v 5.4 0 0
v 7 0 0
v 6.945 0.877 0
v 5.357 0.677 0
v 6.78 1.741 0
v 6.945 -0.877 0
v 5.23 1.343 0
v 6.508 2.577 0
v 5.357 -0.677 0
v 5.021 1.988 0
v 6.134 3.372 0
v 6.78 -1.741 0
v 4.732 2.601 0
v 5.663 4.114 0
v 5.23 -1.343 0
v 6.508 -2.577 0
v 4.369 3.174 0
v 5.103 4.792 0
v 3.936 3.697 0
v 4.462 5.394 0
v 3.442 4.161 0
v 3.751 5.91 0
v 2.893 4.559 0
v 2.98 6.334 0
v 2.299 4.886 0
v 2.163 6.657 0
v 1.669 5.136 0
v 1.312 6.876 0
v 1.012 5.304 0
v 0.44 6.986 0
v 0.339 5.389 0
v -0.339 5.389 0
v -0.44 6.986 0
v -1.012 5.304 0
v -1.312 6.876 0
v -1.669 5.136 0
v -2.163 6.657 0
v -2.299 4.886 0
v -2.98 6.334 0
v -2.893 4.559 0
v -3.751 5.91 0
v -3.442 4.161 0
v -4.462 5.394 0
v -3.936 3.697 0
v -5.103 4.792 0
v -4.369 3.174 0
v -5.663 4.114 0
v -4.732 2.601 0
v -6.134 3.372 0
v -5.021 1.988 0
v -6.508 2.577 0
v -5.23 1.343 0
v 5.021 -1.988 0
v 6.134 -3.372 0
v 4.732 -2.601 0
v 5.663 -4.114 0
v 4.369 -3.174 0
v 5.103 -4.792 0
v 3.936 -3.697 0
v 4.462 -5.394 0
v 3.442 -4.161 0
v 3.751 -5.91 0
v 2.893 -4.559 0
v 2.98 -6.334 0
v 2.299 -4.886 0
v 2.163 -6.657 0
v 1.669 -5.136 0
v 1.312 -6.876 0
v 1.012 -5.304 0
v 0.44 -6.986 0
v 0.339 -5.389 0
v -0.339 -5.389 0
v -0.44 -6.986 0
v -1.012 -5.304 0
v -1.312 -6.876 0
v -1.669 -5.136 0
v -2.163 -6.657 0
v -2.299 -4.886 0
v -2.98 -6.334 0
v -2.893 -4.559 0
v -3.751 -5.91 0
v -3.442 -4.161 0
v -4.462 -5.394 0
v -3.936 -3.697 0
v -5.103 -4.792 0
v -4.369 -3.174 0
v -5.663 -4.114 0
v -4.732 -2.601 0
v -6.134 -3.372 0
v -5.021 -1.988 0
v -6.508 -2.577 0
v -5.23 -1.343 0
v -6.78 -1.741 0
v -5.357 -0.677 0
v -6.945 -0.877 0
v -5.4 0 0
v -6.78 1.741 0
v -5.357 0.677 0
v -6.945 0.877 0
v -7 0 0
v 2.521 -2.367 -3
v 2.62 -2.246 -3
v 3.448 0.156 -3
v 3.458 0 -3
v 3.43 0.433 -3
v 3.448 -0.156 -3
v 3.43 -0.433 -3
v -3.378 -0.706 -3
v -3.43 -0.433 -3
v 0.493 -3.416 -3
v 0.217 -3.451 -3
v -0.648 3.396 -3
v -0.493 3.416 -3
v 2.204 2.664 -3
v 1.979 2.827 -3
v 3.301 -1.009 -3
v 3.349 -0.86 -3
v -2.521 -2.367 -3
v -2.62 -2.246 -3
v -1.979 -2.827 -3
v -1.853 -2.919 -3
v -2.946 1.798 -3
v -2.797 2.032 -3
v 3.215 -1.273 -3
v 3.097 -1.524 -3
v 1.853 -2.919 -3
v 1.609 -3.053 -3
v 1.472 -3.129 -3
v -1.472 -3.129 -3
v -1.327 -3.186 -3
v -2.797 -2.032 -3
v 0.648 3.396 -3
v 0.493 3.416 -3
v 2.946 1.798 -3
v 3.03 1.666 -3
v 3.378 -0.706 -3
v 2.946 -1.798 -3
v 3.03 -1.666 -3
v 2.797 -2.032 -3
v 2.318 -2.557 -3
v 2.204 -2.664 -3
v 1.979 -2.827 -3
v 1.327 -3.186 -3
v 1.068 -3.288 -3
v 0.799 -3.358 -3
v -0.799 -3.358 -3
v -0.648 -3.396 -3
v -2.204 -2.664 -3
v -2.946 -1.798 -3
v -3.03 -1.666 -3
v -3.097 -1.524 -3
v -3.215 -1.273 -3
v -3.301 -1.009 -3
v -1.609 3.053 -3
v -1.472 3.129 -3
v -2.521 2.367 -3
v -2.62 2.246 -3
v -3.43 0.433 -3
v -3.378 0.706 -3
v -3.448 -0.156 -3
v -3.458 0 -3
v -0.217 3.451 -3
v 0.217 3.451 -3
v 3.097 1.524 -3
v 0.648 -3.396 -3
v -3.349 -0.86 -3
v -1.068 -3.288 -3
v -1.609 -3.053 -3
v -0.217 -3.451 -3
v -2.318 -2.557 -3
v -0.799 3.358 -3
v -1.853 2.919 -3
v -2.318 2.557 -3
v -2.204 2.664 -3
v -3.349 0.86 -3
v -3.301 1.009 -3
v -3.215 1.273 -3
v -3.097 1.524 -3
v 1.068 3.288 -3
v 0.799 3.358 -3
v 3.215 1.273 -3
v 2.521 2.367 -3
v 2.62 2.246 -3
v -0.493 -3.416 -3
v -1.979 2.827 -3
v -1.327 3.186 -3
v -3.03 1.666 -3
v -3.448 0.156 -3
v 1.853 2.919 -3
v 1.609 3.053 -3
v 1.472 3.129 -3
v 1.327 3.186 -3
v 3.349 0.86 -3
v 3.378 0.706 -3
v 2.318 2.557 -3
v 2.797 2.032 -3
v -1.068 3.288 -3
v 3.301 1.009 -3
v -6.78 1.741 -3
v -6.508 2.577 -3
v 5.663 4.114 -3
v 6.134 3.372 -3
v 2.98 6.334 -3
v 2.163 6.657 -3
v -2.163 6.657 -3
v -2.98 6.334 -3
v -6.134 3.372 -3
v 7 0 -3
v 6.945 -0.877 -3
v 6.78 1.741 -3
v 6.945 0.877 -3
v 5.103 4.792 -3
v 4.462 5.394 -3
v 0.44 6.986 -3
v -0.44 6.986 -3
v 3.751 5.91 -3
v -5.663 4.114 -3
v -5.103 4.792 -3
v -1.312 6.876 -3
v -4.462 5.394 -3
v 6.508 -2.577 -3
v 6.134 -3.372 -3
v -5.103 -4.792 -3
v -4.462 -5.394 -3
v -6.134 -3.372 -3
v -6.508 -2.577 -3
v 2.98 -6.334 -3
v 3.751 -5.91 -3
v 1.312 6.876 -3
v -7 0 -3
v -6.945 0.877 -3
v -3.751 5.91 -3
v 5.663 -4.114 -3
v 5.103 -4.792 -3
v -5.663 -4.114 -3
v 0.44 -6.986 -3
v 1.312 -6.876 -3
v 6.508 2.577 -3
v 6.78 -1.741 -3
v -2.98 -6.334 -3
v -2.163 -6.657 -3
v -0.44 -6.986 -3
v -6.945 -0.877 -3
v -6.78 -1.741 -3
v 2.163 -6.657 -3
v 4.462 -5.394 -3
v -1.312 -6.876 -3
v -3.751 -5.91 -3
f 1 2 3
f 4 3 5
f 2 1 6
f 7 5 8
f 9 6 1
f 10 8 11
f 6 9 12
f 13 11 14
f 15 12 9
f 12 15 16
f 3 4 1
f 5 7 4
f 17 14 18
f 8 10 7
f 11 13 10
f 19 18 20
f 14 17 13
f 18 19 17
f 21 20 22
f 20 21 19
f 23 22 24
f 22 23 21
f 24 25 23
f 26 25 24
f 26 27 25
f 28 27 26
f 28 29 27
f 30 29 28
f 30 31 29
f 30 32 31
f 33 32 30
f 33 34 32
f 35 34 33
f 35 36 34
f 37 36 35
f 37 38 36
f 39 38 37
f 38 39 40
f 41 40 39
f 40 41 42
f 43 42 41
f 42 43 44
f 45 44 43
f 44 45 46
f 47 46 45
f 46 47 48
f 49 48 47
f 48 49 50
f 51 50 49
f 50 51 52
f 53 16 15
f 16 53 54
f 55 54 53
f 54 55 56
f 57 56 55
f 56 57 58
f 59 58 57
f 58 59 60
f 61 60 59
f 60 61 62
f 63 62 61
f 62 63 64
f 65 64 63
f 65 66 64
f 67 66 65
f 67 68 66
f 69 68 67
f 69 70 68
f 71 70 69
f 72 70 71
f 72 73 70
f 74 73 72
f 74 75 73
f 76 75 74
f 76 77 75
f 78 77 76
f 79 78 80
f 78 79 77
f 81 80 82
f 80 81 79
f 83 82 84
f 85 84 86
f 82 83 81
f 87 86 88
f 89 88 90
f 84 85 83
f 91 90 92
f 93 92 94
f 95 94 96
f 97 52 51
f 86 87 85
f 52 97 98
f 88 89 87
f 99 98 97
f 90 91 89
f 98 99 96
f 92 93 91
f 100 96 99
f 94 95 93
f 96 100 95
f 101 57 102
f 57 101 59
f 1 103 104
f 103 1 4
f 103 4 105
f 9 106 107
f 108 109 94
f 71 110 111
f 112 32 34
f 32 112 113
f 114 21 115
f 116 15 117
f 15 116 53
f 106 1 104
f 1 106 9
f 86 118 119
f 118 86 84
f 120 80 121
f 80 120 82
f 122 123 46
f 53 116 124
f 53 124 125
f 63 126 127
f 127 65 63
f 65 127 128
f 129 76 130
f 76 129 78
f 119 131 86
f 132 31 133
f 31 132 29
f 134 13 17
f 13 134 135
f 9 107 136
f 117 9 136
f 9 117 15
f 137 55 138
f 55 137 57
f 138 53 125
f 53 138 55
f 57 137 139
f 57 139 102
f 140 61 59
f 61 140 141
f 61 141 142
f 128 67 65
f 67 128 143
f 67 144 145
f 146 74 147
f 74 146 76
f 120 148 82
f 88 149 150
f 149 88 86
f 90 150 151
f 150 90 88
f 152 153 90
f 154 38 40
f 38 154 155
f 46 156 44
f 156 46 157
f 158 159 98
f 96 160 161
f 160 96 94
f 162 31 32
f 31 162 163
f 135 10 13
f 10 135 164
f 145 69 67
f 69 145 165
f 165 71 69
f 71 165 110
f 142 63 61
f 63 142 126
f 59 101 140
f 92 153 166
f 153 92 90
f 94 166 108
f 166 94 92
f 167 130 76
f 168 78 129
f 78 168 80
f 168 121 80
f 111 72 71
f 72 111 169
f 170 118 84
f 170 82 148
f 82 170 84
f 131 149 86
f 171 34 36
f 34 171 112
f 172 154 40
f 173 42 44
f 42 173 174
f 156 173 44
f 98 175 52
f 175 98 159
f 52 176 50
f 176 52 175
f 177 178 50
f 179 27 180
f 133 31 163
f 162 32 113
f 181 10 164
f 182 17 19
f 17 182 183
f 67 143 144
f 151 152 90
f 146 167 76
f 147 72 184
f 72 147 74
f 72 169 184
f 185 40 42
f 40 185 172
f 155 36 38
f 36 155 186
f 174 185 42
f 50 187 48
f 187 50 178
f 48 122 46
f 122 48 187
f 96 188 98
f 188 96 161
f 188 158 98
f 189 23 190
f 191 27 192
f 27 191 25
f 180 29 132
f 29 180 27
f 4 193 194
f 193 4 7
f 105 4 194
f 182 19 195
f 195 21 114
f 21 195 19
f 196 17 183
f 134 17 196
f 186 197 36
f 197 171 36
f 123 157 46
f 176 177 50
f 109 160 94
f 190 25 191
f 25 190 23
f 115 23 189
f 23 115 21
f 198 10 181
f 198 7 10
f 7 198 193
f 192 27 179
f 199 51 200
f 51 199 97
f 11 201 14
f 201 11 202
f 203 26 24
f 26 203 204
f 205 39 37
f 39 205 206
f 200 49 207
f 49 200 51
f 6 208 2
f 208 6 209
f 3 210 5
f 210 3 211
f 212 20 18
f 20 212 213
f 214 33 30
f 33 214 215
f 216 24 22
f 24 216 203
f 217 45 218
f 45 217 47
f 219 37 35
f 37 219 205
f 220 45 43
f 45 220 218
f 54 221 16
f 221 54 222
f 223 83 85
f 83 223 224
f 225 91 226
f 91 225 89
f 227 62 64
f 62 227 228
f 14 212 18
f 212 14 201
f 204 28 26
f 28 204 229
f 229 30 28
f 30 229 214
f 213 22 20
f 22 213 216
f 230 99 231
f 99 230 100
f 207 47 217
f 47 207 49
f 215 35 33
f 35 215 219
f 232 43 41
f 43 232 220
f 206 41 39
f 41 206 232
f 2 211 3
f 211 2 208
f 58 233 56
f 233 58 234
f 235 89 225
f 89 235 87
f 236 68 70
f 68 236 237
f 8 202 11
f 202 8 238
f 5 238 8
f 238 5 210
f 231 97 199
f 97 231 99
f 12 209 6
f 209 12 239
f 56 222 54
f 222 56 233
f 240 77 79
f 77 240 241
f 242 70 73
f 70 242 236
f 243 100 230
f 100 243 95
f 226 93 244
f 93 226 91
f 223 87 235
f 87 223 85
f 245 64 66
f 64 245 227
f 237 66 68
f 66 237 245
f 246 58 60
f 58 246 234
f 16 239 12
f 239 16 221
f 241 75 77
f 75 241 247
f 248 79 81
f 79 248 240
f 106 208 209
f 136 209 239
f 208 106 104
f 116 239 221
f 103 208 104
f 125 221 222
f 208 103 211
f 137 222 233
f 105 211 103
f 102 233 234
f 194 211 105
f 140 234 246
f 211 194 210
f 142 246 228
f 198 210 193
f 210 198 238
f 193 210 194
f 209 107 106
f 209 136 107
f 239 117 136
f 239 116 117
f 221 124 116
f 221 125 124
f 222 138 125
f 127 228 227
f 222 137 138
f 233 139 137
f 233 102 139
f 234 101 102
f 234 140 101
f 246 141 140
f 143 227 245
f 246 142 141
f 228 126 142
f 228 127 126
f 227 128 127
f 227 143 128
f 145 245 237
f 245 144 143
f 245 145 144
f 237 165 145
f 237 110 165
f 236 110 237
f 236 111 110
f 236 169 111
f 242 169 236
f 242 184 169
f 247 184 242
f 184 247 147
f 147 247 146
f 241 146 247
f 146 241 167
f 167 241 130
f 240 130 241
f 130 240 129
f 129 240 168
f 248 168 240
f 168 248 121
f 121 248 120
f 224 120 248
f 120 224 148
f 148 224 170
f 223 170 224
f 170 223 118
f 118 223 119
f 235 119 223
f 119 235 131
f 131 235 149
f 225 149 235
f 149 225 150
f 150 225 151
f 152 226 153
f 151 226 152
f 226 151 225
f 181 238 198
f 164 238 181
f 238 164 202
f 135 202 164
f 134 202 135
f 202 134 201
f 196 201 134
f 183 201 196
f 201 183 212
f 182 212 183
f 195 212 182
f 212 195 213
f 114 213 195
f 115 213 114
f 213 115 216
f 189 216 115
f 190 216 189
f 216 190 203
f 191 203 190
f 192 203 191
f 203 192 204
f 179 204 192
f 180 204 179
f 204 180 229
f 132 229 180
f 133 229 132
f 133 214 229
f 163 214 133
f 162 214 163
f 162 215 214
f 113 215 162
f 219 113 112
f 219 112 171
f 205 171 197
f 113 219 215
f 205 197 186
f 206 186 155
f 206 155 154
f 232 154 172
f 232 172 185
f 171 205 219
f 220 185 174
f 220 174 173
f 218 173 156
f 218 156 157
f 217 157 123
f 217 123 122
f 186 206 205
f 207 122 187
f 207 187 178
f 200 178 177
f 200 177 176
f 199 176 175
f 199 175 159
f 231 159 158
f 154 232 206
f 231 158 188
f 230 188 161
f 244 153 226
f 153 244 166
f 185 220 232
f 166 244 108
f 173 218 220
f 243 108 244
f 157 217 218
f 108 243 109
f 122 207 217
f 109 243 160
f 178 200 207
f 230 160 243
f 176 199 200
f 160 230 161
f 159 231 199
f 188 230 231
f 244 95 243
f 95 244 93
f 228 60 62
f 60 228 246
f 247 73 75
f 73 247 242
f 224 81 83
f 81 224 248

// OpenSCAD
$fn = 50;


difference() {
	union() {
		translate(v = [0, 0, -3.0000000000]) {
			cylinder(h = 3, r = 7.0000000000);
		}
		cylinder(h = 0, r = 16.0000000000);
	}
	union() {
		translate(v = [0, 0, 0]) {
			rotate(a = [0, 0, 0]) {
				difference() {
					union() {
						#translate(v = [0, 0, -3.0000000000]) {
							cylinder(h = 3, r = 2.6000000000);
						}
						#translate(v = [0, 0, -3.9000000000]) {
							cylinder(h = 3.9000000000, r1 = 2.8750000000, r2 = 5.4000000000);
						}
						#translate(v = [0, 0, -3.0000000000]) {
							cylinder(h = 3, r = 2.8750000000);
						}
						#translate(v = [0, 0, -3.0000000000]) {
							cylinder(h = 3, r = 2.6000000000);
						}
					}
					union();
				}
			}
		}
	}
}
